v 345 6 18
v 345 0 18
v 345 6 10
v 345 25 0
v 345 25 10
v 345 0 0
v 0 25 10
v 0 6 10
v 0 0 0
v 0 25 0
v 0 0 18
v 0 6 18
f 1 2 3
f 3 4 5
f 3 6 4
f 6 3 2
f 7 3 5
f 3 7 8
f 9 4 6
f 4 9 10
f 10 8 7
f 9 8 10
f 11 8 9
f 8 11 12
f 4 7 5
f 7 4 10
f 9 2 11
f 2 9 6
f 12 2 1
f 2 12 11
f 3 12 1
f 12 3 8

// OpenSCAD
// file: screw-hole.scad
// Generic screw holder

// Copyright (C) 2021 Jeremy Bennett <jeremy@jeremybennett.com>

// Contributor Jeremy Bennett <jeremy@jeremybennett.com>

// SPDX-License-Identifier: CC-BY-SA-4.0


// The countersink height is calculated as:
//
//      x - y
//    ----------
//    2 tan(B/2)
//
// where x is the head diameter, y is the shank diameter and B is the head
// angle (100 degrees for DIN 7997x I believe).
//
// Table of 2 tan(B/2) for various B
//
//  60    1.1547
//  82    1.7386
//  90    2.0000
// 100    2.3835
// 110    2.8563

// Small amount
CS_EPS = 0.1;

// Height of rim above countersink
CS_RIM_HEIGHT = 0.3;

// Screw height - effectively infinite!
SCREW_HEIGHT = 100;

// Table of screw dimensions for DIN 7997z countersunk wood screws
// Entry is thread diameter, head diameter, head height.
SCREW_TAB = [ [2.5,  4.7, 1.50],
	      [3.0,  5.6, 1.65],
	      [3.5,  6.5, 1.93],
	      [4.0,  7.5, 2.20],
	      [4.5,  8.3, 2.35],
	      [5.0,  9.2, 2.50],
	      [5.5, 10.2, 2.75],
	      [6.0, 11.0, 3.00],
              [0.0,  0.0, 0.00] ];		// End marker

// Recursively look up dimensions in the SCREW_TAB
function recursive_screw_dims (diam, n) =
     ( (SCREW_TAB[n][0] == 0.0) ? SCREW_TAB[n] :
       (SCREW_TAB[n][0] == diam) ? SCREW_TAB[n] :
       recursive_screw_dims (diam, n + 1) );

// Look up a screw's dimensions
function screw_dims (diam = 4.0) = recursive_screw_dims (diam, 0);

// Hole for a countersink screw
module screw_hole (shank_diam, invert = true) {
     let (dims = screw_dims (shank_diam),
	  head_diam = dims[1],
	  cs_height = dims[2],
	  screw_angle = invert ? 180 : 0) {
	  rotate (a = [0, screw_angle, 0]) {
	       cylinder(r = head_diam / 2, h = CS_RIM_HEIGHT + CS_EPS,
			center = false, $fn = 45);
	       translate(v = [0, 0, CS_RIM_HEIGHT])
	            cylinder(r1 = head_diam / 2, r2 = shank_diam / 2,
			     h = cs_height, center = false, $fn = 45);
	       cylinder(r = shank_diam / 2, h = SCREW_HEIGHT, center = false,
			$fn = 45);
	  }
     }
}
// main file
// Laptop ledge
//
// Copyright (C) 2021 Jeremy Bennett <jeremy@jeremybennett.com>
// Contributor Jeremy Bennett <jeremy@jeremybennett.com>
//
// This is part of the open source laptop stand
//
// SPDX-License-Identifier: CC-BY-SA-4.0

// The grooved ledge against which the edge of the laptop rests

include <screw-hole.scad>

EPS = 0.01;
D1 = 10.0;
D2 = 18.0;
L = 345.0;
W1 = 25.0;
W2 = 6.0;

// The ledge
union () {
     cube (size = [L, W1, D1], center = false);
     cube (size = [L, W2, D2], center = false);
}
